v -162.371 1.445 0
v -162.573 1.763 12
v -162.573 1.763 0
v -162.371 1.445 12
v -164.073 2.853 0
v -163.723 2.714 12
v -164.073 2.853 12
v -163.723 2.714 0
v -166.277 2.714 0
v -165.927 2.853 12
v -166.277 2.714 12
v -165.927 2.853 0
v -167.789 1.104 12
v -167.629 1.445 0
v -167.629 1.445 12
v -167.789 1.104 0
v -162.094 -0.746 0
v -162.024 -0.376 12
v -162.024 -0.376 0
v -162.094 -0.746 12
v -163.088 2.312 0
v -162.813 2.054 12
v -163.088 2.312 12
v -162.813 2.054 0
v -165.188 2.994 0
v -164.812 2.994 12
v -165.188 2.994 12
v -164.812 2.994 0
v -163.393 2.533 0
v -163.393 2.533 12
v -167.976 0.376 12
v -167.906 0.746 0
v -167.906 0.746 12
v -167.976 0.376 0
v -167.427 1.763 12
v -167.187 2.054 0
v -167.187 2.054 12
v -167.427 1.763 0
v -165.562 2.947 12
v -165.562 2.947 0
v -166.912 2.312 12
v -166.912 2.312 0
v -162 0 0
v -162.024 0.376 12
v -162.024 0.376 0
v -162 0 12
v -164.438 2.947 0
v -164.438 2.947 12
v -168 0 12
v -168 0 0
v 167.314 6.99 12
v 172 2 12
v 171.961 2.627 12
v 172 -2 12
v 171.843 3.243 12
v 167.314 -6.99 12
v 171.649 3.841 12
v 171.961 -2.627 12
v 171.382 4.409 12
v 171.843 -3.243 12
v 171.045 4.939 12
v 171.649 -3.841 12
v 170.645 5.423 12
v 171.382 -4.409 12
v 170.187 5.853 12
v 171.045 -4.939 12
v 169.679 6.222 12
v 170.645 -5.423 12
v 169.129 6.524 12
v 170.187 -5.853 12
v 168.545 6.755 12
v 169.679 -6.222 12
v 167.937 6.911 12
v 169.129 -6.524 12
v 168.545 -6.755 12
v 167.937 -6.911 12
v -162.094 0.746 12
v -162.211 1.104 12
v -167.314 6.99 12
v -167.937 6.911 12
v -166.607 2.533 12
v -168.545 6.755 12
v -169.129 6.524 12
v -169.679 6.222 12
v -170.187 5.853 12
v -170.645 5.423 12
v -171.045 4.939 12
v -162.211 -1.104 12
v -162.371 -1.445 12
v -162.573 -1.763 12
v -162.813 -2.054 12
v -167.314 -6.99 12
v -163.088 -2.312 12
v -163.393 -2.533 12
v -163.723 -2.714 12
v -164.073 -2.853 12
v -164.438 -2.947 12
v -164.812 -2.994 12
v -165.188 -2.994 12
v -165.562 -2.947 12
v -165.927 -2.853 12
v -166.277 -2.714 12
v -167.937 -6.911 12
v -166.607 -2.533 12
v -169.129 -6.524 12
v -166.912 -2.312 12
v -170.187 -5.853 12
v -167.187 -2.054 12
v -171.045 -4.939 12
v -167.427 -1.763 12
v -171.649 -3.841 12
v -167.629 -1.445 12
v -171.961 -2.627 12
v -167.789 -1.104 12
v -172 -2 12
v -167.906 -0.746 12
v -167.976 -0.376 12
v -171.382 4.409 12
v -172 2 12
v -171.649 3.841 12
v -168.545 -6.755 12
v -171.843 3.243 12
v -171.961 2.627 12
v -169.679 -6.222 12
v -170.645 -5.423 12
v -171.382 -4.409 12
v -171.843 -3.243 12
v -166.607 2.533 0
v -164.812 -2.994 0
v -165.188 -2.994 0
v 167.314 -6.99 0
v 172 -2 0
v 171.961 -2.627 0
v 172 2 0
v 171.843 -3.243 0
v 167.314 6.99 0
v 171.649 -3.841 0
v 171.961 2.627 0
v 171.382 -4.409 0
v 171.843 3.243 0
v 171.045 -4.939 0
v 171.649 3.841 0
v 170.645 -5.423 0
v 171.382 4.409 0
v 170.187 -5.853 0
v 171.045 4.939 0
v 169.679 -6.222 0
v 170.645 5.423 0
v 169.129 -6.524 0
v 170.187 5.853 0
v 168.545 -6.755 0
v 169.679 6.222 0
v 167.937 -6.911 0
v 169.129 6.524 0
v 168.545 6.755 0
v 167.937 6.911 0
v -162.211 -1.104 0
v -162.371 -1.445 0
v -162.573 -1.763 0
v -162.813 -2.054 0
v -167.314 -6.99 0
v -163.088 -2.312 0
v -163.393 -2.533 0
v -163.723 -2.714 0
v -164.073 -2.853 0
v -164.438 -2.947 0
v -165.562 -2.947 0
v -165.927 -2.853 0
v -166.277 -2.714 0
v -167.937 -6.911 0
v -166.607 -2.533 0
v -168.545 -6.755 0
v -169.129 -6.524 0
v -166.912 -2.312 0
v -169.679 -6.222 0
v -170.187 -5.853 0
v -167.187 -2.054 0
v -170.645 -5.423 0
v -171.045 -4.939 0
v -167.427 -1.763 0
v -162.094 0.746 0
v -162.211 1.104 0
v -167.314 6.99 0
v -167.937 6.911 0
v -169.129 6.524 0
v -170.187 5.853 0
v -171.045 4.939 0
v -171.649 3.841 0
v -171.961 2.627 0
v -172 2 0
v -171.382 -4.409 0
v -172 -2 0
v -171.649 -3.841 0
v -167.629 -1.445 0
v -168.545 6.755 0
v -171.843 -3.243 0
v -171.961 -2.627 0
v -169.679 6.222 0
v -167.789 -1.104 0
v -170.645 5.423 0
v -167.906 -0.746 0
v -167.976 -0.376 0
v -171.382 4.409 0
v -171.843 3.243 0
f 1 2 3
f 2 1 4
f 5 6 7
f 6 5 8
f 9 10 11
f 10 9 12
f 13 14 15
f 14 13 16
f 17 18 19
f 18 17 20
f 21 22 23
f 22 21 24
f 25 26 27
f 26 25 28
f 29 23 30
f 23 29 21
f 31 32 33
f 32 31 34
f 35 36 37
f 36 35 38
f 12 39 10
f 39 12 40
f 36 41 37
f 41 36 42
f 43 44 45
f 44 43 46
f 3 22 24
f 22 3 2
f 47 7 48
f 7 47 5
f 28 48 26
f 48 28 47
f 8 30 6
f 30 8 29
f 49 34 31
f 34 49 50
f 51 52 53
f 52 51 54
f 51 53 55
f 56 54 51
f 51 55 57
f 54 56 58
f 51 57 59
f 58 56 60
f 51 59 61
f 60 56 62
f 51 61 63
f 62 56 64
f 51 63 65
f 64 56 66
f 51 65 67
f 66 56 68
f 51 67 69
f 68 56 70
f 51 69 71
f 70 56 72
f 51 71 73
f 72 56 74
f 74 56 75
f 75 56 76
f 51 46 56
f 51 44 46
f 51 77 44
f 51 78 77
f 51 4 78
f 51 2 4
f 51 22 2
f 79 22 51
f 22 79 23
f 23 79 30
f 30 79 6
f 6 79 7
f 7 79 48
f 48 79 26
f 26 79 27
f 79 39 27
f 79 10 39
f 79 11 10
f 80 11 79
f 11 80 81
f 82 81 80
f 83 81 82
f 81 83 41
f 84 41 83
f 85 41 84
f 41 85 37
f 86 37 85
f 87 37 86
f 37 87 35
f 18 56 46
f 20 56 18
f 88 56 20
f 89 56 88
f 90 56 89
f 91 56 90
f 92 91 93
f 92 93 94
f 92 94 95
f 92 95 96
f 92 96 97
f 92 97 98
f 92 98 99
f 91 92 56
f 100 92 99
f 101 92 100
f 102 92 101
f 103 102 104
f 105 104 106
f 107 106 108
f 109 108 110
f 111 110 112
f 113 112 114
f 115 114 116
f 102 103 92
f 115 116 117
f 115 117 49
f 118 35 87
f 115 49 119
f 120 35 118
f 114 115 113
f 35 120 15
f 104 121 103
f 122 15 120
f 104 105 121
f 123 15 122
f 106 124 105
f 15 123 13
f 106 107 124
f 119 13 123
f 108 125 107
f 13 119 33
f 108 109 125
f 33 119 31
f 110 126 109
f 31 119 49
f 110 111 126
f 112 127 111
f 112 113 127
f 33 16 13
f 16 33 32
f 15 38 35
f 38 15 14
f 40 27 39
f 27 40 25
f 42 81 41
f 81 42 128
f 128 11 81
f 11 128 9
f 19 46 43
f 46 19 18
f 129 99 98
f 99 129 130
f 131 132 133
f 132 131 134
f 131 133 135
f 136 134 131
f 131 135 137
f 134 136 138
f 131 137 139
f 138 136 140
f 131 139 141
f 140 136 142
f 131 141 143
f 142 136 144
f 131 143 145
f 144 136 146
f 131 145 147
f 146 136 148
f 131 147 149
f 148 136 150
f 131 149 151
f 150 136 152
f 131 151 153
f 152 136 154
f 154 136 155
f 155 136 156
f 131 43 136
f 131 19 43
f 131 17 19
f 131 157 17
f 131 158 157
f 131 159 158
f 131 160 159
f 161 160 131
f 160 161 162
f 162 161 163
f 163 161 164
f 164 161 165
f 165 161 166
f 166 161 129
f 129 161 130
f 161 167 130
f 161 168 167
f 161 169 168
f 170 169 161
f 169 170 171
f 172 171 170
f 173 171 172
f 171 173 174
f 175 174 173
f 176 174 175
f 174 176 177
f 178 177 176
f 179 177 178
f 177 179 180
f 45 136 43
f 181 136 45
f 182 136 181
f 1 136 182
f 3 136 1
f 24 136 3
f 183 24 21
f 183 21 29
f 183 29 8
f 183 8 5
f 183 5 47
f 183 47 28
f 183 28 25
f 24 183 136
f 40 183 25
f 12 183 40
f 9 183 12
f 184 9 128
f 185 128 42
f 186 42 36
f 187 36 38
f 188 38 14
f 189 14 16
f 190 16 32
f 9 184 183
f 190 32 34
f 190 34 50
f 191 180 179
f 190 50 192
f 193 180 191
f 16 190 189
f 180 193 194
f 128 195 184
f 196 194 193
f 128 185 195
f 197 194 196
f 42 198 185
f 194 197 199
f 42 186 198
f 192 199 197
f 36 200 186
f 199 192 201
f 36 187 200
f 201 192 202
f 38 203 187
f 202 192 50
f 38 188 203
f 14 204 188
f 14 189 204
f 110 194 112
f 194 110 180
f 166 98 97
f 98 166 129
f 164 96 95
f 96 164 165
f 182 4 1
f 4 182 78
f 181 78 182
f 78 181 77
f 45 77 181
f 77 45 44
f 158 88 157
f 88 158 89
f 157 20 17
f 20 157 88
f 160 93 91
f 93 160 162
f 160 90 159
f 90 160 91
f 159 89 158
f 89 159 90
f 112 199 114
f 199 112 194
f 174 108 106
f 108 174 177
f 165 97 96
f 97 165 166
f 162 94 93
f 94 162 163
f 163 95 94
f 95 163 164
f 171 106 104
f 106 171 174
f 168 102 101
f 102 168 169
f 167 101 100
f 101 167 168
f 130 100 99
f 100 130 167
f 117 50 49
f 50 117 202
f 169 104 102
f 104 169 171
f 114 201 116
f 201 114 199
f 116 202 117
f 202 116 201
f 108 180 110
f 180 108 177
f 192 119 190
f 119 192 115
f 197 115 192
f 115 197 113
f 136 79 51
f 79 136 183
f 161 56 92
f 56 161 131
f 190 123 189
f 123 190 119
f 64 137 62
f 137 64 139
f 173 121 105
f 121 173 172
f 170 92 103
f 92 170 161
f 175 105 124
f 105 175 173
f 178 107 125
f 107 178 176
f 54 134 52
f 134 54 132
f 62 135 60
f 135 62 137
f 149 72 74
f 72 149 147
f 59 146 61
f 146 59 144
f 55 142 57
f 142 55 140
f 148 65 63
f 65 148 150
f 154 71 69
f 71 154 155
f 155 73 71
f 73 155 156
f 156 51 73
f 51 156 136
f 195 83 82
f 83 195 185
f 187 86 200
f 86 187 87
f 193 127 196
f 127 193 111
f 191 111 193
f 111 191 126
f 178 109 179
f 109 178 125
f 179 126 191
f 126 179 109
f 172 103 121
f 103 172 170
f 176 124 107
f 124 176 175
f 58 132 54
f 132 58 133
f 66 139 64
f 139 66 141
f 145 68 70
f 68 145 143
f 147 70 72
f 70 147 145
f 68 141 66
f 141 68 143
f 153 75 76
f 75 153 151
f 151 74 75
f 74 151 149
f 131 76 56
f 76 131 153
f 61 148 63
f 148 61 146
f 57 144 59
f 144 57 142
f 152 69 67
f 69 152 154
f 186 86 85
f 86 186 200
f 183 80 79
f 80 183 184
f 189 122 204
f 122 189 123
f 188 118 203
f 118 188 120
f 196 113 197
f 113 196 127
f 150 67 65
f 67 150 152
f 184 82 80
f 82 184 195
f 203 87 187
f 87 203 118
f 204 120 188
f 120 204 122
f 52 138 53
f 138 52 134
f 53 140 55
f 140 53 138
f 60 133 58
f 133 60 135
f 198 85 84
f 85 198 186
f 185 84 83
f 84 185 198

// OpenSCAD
$fn = 50;


difference() {
	union() {
		hull() {
			translate(v = [-167.0000000000, 2.0000000000, 0]) {
				cylinder(h = 12, r = 5);
			}
			translate(v = [167.0000000000, 2.0000000000, 0]) {
				cylinder(h = 12, r = 5);
			}
			translate(v = [-167.0000000000, -2.0000000000, 0]) {
				cylinder(h = 12, r = 5);
			}
			translate(v = [167.0000000000, -2.0000000000, 0]) {
				cylinder(h = 12, r = 5);
			}
		}
	}
	union() {
		translate(v = [-165.0000000000, 0.0000000000, 0]) {
			cylinder(h = 12, r = 3.0000000000);
		}
		translate(v = [-165.0000000000, 0.0000000000, 0]) {
			cylinder(h = 12, r = 1.5000000000);
		}
		translate(v = [-165.0000000000, 0.0000000000, 0]) {
			cylinder(h = 12, r = 1.5000000000);
		}
		translate(v = [-165.0000000000, 0.0000000000, 0]) {
			cylinder(h = 12, r = 1.5000000000);
		}
	}
}
